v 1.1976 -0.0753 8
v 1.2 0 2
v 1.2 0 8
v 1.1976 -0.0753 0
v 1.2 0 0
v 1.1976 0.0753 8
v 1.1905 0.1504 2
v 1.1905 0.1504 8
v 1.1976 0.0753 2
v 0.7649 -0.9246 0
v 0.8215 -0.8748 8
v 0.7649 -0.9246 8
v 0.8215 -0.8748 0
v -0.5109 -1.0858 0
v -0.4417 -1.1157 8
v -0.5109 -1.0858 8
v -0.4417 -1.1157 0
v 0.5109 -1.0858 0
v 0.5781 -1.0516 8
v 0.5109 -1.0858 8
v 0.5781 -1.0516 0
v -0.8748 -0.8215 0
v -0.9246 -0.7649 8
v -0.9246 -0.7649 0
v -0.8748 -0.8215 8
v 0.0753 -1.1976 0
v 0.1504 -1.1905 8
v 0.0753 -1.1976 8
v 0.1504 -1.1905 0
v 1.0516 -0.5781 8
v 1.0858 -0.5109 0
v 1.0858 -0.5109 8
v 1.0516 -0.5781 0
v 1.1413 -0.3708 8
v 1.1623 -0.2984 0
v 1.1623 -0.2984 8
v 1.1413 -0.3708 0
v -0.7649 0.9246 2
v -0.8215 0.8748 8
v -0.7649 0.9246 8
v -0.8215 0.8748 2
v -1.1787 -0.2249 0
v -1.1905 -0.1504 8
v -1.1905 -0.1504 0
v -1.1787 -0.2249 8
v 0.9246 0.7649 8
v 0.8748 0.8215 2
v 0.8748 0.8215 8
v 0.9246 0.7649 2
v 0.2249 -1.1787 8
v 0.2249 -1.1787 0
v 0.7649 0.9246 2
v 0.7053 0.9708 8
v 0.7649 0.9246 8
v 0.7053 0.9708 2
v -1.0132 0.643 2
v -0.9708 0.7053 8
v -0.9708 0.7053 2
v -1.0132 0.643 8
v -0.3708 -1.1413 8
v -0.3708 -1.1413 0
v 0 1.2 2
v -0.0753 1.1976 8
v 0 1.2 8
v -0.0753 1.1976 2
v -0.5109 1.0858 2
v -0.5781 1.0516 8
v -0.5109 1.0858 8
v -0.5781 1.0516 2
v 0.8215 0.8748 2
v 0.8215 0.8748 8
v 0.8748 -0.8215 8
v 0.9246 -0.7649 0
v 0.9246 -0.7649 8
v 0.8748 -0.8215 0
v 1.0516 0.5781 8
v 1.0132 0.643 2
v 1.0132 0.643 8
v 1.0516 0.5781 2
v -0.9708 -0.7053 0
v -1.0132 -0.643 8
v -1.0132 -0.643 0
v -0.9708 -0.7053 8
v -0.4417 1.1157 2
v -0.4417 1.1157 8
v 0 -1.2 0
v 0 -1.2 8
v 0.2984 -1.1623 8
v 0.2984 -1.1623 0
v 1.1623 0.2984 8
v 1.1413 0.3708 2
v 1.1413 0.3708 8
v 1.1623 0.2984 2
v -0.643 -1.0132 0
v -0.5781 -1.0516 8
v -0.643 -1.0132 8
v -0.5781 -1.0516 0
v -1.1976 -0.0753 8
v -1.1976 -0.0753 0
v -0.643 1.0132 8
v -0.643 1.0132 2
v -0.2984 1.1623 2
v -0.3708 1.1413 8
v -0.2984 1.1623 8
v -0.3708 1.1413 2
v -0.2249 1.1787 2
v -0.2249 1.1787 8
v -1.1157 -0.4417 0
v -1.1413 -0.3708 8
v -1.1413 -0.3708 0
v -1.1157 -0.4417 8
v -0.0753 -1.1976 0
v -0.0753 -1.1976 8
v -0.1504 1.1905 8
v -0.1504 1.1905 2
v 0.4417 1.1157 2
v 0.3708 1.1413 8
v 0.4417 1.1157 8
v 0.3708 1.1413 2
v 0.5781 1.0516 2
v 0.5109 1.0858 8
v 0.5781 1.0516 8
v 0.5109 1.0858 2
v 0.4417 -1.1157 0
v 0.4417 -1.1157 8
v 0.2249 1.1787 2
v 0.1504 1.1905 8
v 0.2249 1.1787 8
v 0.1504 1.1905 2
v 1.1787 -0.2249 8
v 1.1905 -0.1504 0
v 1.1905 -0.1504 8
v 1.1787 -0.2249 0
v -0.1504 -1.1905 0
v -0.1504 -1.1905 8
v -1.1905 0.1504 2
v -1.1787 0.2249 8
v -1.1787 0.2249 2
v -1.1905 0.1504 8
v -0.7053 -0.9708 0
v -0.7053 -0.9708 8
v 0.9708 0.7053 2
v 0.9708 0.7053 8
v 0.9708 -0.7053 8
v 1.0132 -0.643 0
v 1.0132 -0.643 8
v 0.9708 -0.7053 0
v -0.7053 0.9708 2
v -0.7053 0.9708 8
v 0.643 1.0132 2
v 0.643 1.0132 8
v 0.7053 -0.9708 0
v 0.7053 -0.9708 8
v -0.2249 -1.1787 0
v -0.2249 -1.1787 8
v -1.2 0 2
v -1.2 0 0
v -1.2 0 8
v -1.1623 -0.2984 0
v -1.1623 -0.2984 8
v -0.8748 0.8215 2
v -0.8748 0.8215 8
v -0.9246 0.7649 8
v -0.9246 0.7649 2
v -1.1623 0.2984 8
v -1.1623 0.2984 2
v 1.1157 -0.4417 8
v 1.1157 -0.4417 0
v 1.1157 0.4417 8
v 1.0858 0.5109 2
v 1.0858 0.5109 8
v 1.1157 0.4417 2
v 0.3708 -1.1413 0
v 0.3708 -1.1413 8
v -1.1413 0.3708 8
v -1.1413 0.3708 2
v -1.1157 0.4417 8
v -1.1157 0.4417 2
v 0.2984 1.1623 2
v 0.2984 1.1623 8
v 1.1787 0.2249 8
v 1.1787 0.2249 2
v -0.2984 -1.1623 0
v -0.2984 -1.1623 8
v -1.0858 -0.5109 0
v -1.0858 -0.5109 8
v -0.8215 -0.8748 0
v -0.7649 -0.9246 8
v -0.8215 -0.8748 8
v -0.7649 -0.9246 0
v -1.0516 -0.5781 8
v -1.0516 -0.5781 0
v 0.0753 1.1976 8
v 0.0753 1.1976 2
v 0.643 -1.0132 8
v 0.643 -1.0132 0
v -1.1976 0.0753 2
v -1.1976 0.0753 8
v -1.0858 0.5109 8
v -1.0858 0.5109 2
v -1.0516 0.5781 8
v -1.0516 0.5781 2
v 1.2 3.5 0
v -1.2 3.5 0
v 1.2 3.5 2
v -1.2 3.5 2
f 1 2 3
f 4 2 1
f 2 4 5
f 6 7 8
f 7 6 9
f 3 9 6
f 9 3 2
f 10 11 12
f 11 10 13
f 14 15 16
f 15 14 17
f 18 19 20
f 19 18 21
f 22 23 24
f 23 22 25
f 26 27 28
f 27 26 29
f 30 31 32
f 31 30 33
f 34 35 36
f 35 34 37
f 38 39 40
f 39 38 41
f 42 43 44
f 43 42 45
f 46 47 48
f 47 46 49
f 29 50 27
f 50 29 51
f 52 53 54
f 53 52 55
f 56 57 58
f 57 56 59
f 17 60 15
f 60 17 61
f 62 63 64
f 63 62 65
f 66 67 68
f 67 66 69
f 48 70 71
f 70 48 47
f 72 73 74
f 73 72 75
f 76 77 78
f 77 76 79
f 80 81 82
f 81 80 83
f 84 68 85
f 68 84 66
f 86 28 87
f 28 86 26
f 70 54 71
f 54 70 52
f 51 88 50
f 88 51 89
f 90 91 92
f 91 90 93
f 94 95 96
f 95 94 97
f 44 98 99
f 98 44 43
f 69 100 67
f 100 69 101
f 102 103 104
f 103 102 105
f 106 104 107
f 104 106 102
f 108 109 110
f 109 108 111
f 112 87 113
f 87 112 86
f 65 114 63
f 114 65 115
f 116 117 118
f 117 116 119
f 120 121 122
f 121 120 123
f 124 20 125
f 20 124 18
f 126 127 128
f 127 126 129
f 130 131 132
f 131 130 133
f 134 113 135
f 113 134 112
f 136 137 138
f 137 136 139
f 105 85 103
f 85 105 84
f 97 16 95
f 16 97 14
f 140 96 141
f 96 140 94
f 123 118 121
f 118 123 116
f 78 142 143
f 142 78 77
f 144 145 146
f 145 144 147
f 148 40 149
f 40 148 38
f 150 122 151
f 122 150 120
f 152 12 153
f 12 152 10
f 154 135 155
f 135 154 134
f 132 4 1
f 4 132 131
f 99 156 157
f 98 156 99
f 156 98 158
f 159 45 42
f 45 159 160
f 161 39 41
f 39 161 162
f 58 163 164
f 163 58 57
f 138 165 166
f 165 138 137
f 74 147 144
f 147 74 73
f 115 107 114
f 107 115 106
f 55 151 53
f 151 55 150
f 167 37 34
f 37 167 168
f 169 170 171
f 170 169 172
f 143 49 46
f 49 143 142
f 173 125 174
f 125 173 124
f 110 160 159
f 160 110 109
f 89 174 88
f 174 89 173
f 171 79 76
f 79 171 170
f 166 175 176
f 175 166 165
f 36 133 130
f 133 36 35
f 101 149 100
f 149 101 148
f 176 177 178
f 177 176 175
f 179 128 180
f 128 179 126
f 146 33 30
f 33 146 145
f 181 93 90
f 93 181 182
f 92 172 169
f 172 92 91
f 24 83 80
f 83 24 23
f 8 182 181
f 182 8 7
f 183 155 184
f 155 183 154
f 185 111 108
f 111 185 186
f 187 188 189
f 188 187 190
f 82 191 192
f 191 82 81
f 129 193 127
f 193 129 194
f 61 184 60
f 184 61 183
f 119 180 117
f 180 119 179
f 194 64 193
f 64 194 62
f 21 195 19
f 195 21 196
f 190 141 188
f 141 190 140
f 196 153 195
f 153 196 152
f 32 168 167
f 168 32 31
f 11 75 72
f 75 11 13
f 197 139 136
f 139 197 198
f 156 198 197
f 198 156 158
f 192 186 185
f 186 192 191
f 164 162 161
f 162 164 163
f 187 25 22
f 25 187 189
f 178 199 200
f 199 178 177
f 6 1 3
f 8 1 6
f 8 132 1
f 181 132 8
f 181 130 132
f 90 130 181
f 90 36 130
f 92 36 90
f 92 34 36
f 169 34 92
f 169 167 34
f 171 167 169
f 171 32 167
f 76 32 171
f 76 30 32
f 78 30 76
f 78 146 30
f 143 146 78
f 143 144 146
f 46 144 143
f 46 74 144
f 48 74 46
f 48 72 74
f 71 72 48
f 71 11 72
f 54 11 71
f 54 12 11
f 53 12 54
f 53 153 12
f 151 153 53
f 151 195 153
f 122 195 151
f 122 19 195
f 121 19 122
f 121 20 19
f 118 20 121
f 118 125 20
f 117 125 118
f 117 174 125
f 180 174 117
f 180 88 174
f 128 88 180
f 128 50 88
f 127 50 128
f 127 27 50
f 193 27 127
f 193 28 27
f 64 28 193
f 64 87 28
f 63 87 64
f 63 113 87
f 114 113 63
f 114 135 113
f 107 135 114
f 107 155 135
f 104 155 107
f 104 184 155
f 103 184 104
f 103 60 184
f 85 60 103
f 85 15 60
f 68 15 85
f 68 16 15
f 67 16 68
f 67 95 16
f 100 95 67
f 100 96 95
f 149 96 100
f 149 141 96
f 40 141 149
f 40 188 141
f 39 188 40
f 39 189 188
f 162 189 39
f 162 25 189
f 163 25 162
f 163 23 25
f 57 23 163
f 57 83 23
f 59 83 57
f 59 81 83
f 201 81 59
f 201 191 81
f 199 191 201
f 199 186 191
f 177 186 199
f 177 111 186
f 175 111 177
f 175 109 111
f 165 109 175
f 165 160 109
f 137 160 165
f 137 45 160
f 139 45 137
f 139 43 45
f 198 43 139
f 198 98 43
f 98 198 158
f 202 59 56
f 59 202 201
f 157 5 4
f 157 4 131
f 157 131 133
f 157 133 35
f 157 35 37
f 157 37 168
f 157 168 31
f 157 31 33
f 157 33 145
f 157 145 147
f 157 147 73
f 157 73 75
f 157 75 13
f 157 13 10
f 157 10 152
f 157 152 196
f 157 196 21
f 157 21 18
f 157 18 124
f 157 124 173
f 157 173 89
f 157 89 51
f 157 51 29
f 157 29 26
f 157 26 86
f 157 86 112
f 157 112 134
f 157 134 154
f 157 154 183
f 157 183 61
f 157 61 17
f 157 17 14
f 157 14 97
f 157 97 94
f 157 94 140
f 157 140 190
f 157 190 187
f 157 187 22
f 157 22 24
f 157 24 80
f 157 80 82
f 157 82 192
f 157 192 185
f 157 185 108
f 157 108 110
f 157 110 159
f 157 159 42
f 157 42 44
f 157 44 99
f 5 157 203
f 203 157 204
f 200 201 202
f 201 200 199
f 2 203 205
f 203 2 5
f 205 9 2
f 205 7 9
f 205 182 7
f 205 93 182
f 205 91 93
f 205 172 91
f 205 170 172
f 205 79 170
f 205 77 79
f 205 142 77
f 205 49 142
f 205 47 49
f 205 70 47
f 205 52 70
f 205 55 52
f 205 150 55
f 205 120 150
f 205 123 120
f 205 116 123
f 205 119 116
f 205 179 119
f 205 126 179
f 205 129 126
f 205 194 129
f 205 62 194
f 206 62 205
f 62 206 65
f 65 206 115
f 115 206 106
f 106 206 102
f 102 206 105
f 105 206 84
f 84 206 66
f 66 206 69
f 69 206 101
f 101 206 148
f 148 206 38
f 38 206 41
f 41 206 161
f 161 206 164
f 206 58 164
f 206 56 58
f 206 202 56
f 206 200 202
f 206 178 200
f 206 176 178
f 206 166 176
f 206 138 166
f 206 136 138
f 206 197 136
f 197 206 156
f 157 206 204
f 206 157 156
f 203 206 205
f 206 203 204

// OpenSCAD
$fn = 100;

union() {
    cylinder(r=1.2, h=8);
    translate([-1.2, 0, 0]) cube([2.4, 3.5, 2]);
}
